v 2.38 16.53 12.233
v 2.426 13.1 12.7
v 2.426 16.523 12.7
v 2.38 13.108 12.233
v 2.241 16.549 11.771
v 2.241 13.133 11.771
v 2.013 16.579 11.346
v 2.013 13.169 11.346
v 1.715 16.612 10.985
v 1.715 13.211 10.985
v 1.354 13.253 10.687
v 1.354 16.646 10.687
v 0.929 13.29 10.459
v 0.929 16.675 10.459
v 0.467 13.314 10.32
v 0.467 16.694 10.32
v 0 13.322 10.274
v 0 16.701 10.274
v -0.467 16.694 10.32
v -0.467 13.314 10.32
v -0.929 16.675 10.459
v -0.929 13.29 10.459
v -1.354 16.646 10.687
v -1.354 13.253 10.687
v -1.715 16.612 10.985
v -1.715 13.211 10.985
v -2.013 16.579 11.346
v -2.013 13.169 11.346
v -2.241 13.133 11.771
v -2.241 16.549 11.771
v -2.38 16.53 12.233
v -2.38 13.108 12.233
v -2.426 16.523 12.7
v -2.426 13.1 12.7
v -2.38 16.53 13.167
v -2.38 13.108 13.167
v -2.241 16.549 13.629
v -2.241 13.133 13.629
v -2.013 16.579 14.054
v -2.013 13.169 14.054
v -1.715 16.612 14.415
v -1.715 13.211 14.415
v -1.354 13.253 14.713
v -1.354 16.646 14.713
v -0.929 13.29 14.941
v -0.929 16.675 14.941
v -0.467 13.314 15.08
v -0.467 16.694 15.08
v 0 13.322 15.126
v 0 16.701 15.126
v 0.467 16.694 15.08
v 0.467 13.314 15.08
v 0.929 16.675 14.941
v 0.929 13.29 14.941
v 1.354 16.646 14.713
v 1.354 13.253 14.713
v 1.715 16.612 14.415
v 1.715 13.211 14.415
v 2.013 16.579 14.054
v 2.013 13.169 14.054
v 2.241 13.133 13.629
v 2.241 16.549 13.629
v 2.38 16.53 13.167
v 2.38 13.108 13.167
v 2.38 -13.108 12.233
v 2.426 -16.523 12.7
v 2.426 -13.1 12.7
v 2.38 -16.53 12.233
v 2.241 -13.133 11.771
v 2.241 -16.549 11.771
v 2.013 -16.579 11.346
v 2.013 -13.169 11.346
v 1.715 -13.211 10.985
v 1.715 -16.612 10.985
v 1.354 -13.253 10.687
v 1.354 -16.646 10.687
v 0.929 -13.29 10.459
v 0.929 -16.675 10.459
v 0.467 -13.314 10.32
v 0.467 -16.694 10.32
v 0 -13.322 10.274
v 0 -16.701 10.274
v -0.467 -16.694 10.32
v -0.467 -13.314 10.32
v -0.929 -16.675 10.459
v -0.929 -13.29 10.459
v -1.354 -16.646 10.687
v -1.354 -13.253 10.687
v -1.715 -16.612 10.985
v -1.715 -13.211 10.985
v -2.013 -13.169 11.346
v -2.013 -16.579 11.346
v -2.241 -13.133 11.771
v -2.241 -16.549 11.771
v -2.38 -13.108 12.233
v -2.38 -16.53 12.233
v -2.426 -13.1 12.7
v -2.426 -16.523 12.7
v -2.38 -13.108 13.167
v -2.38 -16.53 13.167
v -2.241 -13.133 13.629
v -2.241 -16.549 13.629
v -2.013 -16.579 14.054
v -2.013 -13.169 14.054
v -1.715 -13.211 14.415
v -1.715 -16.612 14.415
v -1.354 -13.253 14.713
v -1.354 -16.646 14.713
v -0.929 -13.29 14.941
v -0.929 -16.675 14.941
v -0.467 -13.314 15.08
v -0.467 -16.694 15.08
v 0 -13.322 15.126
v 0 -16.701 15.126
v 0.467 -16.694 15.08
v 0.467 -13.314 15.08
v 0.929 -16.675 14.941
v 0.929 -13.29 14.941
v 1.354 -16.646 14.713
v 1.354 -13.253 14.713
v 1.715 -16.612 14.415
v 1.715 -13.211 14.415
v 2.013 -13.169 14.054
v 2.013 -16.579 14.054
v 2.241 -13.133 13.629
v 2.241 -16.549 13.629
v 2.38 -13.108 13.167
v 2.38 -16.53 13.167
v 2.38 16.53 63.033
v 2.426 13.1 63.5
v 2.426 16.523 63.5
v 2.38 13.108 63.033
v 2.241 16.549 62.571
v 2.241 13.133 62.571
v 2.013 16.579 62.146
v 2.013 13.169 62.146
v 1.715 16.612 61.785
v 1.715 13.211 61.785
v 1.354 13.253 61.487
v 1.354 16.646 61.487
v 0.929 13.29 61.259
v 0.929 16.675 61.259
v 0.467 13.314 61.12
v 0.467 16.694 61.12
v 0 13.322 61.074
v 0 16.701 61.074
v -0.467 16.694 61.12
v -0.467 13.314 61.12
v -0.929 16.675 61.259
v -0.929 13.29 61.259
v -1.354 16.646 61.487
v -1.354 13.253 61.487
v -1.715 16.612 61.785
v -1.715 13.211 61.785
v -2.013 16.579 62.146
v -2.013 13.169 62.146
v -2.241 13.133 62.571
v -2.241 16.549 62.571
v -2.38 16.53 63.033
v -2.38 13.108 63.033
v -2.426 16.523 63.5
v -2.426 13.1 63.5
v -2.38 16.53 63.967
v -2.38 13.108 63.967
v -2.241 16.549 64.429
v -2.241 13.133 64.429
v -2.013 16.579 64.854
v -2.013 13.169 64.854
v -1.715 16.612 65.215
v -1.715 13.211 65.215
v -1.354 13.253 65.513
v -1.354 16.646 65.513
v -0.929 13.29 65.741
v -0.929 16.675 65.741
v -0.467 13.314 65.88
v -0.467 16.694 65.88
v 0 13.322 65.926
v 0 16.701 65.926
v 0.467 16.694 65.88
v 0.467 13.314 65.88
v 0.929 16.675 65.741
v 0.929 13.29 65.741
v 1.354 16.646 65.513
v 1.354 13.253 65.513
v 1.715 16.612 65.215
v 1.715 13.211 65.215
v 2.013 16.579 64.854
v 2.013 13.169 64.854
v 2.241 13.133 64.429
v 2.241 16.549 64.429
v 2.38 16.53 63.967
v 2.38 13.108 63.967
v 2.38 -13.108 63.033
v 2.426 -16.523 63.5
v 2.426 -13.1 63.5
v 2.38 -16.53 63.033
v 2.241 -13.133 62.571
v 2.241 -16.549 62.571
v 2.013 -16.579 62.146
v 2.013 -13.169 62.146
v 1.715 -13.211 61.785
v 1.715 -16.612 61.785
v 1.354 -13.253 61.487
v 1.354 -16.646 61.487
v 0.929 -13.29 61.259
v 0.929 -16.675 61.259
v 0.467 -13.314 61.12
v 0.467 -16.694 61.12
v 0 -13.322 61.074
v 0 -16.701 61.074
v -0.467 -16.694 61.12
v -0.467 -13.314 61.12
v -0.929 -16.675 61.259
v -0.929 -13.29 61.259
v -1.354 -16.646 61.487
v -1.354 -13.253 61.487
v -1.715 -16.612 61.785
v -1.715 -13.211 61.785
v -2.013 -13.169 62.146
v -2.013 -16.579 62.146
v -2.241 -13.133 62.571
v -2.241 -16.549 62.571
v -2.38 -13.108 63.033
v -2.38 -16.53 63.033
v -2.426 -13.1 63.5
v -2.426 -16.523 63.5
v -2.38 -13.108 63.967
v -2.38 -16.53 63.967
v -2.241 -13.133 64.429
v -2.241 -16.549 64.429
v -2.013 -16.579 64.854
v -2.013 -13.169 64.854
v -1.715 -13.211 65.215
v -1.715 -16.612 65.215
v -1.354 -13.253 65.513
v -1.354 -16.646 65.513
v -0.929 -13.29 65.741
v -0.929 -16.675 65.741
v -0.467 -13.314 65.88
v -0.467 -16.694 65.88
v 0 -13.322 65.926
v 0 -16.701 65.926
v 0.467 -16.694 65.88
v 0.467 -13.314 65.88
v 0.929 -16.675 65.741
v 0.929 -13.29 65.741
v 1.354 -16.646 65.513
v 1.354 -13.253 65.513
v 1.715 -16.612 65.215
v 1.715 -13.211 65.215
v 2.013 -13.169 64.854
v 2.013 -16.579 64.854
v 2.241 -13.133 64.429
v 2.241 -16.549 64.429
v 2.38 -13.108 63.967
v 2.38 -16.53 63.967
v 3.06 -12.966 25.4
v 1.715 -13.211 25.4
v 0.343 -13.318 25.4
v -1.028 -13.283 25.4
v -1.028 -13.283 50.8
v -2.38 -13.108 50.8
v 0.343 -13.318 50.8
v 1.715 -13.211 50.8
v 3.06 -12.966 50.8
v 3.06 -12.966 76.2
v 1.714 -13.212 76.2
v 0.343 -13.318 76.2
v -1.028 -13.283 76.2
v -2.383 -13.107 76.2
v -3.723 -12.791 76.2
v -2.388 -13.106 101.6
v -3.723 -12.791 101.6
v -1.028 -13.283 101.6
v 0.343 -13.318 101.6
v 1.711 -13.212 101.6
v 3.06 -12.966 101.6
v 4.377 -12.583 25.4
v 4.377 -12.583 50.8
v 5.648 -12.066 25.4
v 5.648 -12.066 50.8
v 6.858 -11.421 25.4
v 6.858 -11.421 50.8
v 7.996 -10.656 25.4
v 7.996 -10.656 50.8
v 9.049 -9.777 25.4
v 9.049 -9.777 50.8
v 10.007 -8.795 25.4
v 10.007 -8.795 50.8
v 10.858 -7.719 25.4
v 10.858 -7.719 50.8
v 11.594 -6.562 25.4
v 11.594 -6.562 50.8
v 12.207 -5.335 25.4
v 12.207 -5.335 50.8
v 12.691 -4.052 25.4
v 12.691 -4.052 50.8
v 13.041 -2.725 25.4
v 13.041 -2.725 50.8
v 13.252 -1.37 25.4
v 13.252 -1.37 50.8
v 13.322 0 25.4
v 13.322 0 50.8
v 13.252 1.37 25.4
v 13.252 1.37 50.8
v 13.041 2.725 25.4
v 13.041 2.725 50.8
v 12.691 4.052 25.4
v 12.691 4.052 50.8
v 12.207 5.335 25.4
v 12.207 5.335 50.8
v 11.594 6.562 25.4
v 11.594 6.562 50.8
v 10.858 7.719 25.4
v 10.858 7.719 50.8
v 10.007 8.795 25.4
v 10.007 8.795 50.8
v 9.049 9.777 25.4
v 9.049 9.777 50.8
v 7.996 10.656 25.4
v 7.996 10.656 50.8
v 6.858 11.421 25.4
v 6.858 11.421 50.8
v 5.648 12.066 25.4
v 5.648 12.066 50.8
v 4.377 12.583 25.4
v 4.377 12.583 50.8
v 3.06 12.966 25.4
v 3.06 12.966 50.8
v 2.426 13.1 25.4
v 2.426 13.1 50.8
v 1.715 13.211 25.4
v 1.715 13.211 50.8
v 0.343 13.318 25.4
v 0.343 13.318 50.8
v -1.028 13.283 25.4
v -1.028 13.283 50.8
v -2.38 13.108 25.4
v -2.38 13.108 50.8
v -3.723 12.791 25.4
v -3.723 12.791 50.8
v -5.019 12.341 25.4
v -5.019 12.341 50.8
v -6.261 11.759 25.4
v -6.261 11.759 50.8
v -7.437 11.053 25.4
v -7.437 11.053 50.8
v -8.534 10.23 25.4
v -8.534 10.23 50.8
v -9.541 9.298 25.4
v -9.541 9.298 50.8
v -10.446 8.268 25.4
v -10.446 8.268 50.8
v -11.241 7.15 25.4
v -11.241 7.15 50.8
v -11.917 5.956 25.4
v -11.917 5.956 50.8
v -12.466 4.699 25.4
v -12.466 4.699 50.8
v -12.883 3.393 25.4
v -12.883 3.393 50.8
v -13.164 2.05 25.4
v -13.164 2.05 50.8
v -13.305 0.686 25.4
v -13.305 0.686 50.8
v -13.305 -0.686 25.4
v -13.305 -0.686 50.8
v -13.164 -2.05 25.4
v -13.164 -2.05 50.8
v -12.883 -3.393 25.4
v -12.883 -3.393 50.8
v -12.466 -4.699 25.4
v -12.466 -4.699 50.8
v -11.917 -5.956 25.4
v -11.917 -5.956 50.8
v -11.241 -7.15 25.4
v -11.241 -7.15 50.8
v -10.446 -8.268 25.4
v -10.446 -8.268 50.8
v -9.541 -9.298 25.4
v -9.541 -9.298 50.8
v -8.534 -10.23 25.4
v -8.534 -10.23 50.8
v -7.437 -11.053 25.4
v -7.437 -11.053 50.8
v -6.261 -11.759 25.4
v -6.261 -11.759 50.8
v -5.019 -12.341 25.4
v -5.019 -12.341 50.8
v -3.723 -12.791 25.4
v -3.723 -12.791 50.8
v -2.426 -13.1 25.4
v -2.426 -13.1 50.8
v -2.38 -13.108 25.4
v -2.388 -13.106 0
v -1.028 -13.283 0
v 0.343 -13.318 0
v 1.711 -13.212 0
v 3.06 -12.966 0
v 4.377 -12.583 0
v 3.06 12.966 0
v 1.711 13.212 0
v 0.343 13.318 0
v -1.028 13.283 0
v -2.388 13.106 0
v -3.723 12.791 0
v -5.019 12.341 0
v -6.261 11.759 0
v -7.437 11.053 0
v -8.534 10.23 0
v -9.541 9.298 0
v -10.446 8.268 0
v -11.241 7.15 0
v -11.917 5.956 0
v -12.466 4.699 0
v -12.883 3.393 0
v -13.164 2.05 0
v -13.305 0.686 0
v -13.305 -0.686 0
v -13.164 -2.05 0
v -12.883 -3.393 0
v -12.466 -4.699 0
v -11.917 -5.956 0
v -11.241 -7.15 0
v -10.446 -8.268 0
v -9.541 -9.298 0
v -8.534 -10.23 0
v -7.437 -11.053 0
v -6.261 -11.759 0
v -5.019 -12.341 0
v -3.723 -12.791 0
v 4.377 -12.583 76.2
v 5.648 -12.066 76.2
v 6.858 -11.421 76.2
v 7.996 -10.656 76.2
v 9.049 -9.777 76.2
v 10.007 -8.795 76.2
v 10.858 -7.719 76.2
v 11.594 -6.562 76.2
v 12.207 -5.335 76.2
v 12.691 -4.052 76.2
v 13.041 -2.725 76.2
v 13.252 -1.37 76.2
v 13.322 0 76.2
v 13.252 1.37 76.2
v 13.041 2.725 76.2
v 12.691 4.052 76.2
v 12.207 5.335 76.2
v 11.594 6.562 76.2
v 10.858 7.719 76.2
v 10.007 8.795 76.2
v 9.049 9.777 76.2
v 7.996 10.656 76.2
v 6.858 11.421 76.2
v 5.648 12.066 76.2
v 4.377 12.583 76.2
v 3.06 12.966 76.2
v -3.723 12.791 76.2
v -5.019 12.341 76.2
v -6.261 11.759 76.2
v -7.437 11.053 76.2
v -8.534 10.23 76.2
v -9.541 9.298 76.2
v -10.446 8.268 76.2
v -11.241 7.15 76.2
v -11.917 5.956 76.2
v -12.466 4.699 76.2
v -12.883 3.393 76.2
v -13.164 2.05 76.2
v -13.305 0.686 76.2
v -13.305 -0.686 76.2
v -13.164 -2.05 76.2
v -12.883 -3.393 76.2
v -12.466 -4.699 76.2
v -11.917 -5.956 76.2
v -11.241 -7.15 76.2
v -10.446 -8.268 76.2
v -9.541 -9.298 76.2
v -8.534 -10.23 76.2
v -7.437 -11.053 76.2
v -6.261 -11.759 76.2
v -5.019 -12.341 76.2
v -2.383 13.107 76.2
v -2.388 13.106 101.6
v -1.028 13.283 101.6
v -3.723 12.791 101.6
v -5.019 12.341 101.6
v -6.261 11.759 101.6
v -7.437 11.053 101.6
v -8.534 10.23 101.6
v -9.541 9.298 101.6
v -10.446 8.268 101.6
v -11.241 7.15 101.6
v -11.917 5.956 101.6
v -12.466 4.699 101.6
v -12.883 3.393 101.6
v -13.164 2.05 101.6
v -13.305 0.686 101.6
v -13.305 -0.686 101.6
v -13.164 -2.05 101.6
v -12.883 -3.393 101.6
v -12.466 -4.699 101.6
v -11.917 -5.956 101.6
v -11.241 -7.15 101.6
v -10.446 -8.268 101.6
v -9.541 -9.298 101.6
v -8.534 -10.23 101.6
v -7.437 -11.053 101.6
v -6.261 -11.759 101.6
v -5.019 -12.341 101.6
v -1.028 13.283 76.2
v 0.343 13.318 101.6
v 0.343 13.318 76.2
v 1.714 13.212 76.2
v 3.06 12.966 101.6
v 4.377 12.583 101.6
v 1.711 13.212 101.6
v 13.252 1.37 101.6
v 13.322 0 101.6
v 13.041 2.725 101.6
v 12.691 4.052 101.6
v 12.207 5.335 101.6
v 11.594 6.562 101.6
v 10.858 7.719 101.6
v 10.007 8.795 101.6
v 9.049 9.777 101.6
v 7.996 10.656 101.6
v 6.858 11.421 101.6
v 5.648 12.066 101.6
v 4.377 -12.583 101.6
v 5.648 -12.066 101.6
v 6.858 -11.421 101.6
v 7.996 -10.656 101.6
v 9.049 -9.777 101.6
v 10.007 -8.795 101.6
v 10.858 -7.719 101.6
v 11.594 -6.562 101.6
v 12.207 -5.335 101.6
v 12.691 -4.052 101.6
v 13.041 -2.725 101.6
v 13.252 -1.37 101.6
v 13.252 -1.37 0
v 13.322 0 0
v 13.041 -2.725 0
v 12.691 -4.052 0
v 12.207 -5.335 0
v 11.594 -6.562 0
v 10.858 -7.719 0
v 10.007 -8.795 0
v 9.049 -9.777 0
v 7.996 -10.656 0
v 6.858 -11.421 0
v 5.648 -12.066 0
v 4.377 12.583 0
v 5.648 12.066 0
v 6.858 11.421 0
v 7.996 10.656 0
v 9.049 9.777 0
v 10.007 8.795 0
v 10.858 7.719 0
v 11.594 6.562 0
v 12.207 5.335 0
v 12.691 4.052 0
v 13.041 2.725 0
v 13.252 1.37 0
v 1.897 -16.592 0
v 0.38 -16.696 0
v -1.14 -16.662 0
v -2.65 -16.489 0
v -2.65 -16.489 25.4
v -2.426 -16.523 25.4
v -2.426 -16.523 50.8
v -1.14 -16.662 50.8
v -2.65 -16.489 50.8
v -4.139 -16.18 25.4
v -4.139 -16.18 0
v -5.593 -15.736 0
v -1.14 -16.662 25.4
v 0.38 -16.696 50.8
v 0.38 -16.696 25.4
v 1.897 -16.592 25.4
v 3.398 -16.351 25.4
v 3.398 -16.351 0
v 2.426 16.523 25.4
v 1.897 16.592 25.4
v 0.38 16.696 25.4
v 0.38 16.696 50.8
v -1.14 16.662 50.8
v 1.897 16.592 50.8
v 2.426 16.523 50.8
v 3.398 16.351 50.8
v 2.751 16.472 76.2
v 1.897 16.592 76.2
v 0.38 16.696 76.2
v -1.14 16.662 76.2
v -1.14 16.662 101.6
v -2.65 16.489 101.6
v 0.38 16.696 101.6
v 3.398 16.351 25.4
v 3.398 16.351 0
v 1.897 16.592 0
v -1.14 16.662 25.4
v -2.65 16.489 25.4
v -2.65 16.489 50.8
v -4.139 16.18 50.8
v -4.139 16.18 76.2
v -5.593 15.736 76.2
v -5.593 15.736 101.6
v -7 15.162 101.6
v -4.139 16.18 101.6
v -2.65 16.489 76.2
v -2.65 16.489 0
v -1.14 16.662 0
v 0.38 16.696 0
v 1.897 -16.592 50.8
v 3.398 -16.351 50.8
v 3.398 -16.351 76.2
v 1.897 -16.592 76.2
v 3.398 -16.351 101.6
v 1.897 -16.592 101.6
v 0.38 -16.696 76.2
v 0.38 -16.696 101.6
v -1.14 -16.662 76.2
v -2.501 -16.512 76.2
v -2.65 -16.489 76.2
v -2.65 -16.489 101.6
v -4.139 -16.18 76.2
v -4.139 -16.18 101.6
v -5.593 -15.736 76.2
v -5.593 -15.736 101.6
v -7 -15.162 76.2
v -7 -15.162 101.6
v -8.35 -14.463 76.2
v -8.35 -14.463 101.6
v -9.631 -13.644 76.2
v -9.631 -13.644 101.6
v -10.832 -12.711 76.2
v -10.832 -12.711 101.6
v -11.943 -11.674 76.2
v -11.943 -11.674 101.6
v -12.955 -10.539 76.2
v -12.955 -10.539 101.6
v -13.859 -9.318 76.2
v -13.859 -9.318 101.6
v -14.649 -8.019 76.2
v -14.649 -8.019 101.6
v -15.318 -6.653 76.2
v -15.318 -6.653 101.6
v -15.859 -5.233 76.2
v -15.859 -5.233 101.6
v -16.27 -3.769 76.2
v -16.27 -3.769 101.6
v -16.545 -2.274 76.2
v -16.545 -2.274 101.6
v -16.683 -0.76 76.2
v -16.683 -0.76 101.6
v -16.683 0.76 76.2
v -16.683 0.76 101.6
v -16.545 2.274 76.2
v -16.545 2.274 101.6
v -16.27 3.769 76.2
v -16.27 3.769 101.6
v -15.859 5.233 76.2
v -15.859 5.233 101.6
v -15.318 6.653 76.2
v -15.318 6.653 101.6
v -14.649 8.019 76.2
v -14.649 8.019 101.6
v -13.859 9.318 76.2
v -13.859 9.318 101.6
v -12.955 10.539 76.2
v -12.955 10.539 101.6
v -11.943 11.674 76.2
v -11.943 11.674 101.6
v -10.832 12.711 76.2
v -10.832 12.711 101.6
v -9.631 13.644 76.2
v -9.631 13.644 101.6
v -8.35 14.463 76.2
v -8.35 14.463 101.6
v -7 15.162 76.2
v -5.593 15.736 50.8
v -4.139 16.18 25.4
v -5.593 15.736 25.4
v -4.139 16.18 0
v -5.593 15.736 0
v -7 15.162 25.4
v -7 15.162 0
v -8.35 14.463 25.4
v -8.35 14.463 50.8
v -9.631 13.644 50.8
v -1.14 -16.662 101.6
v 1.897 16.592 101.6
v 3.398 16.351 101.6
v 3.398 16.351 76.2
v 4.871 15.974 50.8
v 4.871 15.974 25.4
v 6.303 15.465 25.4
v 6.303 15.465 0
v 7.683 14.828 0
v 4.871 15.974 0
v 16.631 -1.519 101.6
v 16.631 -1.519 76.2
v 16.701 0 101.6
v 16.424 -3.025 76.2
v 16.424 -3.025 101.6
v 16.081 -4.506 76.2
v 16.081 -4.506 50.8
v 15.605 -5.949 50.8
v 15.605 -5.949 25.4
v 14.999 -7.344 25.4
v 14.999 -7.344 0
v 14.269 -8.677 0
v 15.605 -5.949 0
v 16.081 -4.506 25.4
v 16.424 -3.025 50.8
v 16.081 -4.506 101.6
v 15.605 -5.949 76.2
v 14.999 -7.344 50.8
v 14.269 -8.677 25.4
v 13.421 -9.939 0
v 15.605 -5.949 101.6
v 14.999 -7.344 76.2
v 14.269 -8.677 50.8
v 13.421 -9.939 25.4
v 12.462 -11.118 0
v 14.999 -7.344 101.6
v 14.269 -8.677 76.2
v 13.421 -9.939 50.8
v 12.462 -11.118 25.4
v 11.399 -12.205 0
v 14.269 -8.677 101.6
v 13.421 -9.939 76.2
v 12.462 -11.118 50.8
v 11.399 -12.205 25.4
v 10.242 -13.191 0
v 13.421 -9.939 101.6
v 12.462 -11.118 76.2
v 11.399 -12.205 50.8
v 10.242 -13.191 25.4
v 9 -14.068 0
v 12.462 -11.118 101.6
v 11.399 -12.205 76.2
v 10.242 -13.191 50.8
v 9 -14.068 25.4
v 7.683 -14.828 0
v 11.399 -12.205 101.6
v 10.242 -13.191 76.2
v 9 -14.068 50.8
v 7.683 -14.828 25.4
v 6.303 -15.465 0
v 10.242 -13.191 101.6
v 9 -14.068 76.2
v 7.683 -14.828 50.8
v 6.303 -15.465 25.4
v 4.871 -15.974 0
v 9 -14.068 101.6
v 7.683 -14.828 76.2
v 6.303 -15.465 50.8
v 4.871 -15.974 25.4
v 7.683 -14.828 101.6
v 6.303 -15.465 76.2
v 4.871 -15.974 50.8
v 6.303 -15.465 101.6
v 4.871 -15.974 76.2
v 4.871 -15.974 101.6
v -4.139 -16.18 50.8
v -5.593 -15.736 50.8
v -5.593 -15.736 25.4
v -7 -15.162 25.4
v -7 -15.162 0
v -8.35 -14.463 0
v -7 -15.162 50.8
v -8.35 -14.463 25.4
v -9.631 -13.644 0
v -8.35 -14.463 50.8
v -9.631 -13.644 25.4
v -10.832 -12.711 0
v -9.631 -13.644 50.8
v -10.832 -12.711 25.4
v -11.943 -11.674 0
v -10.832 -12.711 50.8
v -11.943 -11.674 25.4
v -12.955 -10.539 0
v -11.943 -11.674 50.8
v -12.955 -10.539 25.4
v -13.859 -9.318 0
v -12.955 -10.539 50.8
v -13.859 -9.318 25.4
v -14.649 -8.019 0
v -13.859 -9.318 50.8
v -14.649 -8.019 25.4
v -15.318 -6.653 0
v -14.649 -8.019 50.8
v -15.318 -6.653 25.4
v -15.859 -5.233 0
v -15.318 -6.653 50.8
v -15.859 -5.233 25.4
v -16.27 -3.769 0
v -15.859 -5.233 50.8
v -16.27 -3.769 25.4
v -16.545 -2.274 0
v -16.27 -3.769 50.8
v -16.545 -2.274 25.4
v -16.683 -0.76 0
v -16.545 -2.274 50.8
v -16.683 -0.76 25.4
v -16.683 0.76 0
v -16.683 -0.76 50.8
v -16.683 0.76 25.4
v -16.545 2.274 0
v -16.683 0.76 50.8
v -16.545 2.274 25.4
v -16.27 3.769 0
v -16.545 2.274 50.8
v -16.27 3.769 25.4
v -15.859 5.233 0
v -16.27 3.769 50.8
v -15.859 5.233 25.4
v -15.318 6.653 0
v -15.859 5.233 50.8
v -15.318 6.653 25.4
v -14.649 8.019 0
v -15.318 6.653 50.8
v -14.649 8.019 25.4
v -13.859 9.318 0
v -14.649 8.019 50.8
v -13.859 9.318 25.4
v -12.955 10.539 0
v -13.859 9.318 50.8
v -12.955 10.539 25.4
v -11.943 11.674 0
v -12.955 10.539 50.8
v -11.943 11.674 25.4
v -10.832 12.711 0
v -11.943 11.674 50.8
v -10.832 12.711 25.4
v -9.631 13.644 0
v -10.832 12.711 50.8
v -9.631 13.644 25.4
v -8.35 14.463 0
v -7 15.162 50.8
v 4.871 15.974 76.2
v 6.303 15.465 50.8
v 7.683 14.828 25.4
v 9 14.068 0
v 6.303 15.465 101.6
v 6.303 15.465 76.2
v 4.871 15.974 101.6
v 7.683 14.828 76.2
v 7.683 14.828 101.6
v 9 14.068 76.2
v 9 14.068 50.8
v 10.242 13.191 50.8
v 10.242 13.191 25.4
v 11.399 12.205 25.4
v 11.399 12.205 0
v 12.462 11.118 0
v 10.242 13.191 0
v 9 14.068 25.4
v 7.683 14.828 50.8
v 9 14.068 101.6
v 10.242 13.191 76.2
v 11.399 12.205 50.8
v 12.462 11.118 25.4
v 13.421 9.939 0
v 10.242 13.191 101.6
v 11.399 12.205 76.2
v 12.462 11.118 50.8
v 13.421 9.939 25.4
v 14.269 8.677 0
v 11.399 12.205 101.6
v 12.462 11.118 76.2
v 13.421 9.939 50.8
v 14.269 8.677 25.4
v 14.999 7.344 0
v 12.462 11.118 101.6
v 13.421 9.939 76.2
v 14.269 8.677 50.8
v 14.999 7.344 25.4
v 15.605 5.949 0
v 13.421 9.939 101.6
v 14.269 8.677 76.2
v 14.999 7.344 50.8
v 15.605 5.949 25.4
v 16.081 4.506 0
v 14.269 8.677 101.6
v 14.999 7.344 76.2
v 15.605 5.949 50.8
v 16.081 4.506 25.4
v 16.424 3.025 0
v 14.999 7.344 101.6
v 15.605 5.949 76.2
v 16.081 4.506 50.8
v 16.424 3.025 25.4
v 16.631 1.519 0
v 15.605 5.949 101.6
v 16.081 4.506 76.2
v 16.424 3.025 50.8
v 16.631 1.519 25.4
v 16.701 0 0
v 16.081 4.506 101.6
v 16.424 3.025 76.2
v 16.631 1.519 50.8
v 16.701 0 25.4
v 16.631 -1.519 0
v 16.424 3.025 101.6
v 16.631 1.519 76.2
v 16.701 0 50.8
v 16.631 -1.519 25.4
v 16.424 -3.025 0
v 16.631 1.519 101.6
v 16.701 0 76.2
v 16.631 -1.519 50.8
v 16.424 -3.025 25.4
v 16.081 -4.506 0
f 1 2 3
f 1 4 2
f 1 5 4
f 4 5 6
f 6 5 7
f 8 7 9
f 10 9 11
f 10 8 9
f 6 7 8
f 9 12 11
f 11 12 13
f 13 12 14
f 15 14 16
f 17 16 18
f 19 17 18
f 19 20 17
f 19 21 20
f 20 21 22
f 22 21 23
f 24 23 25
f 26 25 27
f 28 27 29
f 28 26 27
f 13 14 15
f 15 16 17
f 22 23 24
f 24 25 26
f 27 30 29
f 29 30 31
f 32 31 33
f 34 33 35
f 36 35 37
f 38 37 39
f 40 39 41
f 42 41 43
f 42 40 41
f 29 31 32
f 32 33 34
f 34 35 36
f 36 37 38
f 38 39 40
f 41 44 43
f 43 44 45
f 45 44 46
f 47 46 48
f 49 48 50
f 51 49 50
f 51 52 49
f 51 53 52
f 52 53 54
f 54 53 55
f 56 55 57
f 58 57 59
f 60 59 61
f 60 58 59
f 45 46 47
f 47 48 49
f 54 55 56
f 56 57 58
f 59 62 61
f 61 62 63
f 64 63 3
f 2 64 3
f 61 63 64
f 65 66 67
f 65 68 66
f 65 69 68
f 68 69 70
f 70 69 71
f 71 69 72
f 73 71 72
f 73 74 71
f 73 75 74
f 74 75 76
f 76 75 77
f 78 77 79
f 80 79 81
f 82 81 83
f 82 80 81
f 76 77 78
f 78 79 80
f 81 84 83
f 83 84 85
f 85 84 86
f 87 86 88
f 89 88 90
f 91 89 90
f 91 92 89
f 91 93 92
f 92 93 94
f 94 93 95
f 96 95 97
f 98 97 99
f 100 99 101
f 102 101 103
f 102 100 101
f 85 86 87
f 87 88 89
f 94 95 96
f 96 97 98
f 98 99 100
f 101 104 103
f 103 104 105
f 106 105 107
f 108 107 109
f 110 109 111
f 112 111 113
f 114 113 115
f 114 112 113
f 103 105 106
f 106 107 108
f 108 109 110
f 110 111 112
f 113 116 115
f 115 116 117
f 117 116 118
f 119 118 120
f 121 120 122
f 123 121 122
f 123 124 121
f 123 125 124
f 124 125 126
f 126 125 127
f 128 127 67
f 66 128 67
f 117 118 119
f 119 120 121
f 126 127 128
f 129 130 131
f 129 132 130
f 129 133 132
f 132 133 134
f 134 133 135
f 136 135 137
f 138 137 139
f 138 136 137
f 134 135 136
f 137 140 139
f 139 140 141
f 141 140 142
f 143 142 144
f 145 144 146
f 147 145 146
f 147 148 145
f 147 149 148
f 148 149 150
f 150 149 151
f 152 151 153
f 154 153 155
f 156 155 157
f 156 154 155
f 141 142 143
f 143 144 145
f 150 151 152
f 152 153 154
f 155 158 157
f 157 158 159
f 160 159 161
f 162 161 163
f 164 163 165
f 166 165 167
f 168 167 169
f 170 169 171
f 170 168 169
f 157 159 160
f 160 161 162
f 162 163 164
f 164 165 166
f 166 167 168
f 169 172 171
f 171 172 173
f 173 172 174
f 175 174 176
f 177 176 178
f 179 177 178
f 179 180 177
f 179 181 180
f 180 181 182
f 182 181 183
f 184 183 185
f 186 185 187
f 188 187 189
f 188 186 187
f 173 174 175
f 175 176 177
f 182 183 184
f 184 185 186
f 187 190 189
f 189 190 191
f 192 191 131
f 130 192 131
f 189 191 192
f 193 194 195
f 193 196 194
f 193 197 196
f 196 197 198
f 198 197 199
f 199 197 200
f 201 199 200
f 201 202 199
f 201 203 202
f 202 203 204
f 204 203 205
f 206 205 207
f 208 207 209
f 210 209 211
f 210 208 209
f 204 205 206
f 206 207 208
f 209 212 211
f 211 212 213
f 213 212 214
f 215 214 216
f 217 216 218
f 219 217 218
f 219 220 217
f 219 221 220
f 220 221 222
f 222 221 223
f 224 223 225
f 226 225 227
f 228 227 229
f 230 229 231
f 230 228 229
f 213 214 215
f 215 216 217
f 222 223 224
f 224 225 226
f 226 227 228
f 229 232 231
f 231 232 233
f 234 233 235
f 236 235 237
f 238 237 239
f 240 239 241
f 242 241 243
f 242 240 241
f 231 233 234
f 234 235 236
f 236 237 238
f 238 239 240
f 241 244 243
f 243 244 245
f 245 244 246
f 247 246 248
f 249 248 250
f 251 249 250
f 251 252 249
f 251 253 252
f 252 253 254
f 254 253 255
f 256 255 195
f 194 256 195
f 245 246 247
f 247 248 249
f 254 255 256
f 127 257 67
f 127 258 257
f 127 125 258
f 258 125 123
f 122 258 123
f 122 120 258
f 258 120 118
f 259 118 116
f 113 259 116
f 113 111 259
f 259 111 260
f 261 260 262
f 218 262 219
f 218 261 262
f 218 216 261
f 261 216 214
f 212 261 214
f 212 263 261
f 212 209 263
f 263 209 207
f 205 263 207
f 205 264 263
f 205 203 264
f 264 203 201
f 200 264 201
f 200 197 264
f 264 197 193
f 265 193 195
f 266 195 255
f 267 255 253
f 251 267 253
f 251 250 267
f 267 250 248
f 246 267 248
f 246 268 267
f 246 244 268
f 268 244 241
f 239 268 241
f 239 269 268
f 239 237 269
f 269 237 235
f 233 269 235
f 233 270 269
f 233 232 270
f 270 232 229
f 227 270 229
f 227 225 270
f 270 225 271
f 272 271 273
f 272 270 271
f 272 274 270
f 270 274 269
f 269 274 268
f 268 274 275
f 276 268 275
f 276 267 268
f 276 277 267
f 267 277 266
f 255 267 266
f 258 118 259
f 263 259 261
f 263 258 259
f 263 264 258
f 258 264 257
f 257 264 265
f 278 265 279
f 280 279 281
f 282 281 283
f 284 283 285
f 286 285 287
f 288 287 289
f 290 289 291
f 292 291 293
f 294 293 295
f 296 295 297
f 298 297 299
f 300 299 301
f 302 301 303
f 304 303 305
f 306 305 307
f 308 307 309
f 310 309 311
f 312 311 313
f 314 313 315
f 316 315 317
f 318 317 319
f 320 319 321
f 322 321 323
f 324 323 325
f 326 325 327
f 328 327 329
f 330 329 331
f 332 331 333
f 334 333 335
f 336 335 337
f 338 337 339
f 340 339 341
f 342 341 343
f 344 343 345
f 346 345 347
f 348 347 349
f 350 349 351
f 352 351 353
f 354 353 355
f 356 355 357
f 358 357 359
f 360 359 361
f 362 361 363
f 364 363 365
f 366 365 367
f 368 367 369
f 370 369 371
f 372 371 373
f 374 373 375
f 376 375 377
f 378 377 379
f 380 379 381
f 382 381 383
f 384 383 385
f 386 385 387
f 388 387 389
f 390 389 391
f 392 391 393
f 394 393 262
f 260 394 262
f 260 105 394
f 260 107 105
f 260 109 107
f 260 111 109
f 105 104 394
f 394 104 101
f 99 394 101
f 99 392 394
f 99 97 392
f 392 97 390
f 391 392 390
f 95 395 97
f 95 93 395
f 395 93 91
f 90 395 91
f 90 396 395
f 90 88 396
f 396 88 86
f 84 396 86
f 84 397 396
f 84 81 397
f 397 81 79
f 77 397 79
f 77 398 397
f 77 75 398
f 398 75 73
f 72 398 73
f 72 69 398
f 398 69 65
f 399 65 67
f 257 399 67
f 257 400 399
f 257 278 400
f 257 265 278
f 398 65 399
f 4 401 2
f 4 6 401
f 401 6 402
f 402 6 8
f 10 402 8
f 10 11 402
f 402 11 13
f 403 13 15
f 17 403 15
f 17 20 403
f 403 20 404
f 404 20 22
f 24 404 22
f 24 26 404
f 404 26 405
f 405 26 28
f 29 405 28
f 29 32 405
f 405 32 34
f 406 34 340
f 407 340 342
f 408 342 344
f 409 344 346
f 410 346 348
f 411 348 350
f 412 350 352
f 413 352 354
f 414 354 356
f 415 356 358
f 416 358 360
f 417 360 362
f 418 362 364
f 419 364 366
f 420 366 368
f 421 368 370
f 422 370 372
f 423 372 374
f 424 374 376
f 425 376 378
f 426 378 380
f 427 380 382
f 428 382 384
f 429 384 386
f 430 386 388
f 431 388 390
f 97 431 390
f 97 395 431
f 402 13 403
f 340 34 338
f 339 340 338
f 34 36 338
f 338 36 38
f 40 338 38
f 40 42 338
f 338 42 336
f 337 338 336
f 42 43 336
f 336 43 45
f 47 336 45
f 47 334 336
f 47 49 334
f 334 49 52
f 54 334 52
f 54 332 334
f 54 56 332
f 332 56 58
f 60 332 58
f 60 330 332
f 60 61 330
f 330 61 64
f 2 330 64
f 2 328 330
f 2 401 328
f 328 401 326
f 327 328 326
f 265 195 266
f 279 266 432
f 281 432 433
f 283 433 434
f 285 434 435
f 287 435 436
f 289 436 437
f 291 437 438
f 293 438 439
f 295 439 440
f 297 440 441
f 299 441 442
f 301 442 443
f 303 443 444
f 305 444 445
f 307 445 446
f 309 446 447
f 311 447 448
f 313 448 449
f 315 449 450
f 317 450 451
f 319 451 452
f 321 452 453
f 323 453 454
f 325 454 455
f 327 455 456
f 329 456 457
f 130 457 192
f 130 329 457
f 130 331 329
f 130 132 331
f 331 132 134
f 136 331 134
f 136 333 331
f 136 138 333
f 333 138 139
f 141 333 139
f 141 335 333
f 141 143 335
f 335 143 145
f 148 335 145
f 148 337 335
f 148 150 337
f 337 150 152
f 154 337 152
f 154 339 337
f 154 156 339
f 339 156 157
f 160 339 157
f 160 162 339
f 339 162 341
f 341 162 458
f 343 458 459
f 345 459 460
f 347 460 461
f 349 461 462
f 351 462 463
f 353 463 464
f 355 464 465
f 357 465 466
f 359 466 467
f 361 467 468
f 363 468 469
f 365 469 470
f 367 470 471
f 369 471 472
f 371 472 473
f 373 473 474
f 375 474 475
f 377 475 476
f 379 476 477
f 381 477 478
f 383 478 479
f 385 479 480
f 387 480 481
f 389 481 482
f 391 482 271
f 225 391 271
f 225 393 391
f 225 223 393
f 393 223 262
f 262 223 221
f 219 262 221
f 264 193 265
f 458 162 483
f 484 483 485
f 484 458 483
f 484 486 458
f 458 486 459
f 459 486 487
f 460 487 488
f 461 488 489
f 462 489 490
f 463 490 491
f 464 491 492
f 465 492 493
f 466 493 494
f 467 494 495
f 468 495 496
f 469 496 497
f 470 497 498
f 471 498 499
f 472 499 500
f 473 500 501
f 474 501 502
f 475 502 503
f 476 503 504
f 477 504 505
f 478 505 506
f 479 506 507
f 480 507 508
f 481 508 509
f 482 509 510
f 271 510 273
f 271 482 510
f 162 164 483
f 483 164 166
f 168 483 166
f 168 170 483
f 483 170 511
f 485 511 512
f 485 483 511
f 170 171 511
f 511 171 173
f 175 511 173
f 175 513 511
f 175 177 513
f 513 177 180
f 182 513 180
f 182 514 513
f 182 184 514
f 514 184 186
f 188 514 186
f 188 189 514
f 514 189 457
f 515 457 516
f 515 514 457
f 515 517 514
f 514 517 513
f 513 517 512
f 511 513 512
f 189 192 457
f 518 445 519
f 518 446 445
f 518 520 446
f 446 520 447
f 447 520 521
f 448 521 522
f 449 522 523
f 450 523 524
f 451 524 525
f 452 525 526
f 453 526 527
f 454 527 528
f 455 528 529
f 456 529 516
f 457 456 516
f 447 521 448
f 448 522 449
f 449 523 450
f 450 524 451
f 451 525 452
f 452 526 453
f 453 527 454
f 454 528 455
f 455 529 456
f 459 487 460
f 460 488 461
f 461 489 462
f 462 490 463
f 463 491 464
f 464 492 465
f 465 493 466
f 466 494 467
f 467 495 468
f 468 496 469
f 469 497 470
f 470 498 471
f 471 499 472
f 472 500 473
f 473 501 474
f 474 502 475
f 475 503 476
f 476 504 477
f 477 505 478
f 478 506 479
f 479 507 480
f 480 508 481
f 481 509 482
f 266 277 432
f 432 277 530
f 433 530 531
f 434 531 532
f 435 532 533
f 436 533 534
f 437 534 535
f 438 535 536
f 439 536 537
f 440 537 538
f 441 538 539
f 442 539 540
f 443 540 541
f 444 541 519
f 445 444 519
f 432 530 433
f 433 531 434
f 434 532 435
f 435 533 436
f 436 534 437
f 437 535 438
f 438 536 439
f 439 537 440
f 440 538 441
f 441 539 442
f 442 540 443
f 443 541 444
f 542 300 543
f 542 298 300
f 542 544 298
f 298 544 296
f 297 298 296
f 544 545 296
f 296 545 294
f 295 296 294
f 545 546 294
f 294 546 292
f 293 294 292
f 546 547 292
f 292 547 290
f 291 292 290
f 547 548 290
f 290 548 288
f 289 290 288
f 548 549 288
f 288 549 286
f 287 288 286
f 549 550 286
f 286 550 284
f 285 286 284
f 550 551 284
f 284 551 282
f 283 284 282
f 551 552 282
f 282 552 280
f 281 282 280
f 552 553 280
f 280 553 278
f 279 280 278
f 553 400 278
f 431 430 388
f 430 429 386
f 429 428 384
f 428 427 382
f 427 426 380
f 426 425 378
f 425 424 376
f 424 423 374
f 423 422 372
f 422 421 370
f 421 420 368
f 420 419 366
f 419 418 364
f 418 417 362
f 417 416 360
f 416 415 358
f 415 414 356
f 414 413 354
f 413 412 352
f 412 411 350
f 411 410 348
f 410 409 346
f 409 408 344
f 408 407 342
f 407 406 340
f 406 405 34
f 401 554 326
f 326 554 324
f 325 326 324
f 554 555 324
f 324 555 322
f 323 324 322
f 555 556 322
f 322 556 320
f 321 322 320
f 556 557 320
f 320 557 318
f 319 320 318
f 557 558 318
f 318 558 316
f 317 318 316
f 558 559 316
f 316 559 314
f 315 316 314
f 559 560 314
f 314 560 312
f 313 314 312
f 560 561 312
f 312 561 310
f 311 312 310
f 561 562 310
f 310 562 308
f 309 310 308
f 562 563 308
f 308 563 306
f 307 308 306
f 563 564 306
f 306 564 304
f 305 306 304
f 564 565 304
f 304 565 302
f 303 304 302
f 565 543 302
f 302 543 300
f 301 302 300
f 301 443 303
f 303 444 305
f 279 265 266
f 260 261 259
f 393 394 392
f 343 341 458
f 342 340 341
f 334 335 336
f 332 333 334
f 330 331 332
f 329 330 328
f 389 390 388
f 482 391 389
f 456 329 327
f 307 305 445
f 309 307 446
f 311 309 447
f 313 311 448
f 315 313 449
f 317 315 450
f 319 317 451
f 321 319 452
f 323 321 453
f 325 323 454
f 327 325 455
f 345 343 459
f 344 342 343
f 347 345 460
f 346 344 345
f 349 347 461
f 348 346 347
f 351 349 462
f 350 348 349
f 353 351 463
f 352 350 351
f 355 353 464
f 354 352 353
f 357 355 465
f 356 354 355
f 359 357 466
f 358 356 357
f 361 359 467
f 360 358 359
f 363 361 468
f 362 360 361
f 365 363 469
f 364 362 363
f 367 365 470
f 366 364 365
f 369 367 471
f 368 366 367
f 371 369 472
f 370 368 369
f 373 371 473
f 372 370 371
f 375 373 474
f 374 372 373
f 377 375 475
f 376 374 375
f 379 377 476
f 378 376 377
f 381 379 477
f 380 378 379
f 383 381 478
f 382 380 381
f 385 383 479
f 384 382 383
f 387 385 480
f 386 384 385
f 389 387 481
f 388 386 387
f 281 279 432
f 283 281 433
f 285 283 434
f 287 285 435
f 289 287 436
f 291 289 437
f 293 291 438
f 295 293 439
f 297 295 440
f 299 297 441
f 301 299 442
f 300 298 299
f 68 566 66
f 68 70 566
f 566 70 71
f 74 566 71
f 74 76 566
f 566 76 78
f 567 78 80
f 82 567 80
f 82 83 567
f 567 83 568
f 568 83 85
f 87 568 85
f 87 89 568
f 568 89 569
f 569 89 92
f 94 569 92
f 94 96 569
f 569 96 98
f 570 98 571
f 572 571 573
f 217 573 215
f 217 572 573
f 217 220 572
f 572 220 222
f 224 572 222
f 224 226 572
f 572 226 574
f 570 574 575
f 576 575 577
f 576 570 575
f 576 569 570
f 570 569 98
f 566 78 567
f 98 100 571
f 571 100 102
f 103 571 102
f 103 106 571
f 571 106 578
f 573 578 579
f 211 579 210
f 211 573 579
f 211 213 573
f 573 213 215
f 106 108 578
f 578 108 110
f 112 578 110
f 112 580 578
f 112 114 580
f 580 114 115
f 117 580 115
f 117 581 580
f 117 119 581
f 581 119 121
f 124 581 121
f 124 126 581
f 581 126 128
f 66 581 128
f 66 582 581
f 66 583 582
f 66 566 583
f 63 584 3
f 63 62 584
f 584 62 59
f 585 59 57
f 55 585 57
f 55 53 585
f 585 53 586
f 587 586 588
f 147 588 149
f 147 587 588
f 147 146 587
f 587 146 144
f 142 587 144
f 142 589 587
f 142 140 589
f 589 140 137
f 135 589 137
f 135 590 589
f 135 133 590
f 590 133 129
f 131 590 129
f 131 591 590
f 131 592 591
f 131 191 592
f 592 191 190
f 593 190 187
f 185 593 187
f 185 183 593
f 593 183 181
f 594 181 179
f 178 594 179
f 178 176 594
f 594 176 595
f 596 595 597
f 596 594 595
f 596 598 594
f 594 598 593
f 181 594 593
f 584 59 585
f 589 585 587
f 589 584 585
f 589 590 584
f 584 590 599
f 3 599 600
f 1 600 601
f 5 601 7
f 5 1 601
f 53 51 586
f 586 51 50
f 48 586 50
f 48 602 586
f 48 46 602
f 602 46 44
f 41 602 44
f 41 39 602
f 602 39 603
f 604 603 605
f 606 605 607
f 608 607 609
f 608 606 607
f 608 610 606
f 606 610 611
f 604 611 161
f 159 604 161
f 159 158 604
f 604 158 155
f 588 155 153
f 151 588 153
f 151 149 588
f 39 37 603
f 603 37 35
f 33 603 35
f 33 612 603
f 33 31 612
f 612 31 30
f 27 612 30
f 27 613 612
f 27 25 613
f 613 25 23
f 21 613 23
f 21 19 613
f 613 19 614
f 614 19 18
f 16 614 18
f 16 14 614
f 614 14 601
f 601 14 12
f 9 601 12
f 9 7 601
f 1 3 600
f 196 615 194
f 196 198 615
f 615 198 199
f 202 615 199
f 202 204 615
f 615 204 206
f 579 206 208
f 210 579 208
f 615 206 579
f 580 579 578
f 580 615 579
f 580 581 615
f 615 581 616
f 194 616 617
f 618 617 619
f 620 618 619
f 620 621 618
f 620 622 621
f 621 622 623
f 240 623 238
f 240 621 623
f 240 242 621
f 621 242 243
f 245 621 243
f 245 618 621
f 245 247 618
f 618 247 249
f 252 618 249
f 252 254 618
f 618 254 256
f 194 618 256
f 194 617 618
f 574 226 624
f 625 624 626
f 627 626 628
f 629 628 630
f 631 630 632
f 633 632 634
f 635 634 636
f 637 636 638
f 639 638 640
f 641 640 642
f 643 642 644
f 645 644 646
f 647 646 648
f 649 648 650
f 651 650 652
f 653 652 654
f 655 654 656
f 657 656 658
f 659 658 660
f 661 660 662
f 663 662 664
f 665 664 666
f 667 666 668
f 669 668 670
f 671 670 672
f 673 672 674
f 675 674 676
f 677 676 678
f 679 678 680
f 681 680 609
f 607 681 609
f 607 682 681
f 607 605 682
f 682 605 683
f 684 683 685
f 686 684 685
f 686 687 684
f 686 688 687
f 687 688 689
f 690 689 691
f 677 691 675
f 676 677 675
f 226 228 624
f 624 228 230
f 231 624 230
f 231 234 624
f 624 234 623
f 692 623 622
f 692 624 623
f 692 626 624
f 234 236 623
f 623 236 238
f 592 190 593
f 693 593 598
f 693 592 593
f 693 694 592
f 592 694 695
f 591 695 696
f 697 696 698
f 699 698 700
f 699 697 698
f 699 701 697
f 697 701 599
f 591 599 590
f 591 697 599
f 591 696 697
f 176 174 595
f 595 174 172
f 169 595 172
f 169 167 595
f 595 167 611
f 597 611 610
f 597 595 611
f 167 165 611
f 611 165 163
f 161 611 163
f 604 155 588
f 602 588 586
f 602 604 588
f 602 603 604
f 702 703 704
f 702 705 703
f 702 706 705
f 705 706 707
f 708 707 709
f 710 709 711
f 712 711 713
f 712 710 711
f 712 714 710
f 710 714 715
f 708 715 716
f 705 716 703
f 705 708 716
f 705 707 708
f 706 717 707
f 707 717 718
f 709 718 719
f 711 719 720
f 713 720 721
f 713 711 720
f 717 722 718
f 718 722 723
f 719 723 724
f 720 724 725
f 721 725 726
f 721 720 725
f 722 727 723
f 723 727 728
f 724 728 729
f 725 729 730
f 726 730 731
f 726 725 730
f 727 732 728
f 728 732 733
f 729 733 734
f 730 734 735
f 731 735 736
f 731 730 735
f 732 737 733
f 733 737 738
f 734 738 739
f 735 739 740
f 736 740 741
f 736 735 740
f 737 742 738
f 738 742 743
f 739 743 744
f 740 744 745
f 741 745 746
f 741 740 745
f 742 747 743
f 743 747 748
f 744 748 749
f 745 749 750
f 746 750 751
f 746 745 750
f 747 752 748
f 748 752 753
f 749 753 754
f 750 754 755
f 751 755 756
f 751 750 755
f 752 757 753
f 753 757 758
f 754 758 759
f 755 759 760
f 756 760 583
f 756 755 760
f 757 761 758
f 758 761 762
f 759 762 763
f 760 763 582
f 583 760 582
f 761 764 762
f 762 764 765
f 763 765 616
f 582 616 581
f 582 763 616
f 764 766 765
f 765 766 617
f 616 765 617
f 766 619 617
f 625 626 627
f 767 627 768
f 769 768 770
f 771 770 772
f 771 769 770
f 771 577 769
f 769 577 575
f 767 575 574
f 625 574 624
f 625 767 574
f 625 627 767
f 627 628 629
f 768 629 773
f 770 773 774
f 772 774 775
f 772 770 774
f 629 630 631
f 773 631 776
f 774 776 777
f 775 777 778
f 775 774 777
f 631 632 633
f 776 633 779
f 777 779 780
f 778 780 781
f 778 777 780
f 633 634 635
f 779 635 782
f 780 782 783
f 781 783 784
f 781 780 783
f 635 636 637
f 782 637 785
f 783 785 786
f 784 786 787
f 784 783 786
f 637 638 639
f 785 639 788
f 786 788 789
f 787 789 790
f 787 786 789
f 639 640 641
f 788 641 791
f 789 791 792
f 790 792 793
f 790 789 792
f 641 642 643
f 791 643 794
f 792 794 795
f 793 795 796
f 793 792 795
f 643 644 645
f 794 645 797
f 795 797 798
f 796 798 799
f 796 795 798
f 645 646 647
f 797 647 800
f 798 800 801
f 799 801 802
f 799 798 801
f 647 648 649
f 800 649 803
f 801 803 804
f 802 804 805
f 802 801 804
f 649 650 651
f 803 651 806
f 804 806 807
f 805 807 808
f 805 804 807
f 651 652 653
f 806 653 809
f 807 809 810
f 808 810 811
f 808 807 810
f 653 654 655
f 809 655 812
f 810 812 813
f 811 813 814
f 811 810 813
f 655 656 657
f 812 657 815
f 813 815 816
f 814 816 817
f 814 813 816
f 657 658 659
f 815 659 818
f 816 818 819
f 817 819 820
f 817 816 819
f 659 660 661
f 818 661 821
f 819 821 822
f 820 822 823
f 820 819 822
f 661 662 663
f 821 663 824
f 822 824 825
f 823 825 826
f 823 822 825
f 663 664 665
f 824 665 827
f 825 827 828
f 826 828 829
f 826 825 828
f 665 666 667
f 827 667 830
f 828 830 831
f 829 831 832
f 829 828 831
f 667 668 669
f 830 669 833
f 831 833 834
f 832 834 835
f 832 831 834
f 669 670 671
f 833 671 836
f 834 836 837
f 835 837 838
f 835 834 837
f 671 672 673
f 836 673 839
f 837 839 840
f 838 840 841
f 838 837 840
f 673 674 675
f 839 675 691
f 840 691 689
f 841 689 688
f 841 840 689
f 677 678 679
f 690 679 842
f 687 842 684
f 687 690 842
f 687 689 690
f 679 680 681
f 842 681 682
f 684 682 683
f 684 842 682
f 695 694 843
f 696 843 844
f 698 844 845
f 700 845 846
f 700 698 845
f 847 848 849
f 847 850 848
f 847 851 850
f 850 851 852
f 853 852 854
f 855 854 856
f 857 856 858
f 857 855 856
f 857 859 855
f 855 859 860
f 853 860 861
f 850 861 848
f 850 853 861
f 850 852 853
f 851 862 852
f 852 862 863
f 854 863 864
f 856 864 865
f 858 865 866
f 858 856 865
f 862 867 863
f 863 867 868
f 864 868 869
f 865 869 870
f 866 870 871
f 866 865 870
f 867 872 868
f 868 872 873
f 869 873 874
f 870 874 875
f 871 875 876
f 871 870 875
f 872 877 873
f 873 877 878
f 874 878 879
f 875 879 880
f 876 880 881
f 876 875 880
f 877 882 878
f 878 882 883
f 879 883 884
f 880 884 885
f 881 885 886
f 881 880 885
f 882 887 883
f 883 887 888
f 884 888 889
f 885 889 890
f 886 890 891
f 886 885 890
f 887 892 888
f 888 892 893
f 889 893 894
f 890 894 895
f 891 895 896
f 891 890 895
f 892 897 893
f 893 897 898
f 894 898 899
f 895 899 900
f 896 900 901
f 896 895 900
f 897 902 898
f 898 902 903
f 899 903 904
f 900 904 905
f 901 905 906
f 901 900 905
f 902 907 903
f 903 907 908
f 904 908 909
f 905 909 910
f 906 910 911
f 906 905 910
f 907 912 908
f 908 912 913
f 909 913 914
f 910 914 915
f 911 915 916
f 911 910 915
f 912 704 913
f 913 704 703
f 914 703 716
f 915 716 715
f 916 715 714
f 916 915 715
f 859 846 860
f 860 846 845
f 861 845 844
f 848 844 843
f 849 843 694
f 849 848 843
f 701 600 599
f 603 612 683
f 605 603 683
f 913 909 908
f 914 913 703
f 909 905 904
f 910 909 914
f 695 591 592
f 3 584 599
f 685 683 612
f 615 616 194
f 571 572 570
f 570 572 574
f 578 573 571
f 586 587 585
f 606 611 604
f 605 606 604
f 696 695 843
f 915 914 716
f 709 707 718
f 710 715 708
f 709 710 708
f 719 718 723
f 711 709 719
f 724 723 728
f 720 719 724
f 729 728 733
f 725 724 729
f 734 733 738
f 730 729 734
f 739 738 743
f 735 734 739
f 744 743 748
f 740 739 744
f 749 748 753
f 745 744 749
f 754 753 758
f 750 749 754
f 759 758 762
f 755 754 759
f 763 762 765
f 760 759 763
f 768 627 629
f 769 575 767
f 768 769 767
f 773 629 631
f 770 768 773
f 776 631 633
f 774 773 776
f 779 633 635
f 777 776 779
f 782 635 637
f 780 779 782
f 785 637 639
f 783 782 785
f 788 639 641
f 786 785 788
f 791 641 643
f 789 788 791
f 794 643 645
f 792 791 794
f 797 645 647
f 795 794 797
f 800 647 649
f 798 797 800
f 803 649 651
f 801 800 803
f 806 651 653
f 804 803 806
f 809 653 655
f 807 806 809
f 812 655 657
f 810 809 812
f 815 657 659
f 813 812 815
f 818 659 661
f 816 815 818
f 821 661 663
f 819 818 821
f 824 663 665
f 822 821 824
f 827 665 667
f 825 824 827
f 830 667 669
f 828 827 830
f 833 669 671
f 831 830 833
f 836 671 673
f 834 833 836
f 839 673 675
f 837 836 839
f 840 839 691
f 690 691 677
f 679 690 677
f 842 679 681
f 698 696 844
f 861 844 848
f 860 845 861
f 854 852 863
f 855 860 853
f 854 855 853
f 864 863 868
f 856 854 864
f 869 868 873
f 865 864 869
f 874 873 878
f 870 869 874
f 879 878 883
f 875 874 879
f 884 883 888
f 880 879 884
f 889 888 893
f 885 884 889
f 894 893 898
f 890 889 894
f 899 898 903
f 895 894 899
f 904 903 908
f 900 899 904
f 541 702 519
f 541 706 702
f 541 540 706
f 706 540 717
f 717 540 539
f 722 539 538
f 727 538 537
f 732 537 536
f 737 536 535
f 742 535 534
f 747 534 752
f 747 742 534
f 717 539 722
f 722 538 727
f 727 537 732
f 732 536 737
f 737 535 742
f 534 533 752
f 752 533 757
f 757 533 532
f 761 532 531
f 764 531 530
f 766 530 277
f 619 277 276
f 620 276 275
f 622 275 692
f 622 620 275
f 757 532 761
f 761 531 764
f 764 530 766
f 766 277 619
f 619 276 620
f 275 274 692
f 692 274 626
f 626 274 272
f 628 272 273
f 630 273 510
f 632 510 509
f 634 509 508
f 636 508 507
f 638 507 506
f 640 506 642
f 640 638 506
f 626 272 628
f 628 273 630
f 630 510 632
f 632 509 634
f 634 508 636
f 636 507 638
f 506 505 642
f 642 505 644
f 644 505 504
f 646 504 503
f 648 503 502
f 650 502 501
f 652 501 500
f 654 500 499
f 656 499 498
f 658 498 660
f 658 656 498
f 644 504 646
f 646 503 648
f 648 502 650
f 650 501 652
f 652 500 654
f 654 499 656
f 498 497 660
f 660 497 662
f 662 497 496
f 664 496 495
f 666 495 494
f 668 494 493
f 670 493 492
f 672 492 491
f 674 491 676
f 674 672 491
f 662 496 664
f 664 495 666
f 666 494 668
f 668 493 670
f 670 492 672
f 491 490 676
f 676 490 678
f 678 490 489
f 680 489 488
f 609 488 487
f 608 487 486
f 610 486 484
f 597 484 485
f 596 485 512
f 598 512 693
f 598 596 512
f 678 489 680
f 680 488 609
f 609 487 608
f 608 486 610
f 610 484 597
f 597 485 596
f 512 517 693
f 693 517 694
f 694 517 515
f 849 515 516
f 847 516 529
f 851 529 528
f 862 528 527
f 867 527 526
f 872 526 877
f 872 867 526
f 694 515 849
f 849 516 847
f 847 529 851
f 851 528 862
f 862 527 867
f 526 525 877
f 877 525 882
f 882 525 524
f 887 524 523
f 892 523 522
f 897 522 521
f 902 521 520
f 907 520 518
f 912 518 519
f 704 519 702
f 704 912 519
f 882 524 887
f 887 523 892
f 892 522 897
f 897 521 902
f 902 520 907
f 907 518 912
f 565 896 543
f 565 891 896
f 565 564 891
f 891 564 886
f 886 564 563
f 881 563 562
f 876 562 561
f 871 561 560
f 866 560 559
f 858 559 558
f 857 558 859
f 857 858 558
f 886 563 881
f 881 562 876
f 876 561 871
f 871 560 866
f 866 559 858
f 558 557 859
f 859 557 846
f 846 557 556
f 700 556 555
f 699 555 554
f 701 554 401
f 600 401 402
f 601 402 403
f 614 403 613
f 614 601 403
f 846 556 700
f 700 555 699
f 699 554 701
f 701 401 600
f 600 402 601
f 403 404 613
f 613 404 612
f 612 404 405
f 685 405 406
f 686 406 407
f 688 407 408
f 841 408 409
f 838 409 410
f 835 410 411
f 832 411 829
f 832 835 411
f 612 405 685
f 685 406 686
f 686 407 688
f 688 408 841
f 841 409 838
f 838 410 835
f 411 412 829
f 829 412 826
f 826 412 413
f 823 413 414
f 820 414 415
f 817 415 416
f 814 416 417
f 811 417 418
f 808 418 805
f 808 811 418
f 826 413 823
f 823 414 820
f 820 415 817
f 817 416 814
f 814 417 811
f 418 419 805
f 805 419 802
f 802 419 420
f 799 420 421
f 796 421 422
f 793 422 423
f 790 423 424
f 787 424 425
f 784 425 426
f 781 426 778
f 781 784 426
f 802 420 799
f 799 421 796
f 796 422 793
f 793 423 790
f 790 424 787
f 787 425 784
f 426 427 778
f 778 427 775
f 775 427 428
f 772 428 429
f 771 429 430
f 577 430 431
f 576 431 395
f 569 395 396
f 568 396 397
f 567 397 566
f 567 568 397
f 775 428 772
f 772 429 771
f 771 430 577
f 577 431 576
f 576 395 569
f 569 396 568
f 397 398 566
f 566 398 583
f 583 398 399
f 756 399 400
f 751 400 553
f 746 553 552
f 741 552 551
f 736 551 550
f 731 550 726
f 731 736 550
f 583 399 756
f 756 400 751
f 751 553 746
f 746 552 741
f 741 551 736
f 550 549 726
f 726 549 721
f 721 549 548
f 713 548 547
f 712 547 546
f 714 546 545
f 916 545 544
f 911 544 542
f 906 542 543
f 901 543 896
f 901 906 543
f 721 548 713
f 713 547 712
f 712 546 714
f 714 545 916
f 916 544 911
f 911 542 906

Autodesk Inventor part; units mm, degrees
ref_plane "XZ Plane" through (0, 0, 0) normal (0, 1, 0) x (-1, 0, 0)
ref_plane "XY Plane" through (0, 0, 0) normal (0, 0, 1) x (1, 0, 0)
sketch "Sketch1" plane through (0, 0, 0) normal (0, 0, 1) x (1, 0, 0)
  circle A0 centre (0, 0) radius 16.7005
  circle A1 centre (0, 0) radius 13.3223
  dimension "d0" = 26.6446
  dimension "d1" = 33.401
extrude "Extrusion1" add sketch "Sketch1" along normal blind 101.6
ref_plane "Work Plane1" through (0, 0, 0) normal (0, 1, 0) x (0, 0, 1)
sketch "Sketch2" plane through (0, 0, 0) normal (0, 1, 0) x (0, 0, 1)
  line L0 (0, -16.7005) -> (101.6, -16.7005) projected
  line L1 (101.6, 13.3223) -> (101.6, -13.3223) projected
  line L2 (101.6, 16.7005) -> (101.6, -16.7005) projected
  line L3 (-20.32, 0) -> (121.92, 0) projected
  circle A0 centre (63.5, 0) radius 2.4257
  dimension "d5" = 38.1
  dimension "d6" = 4.8514
extrude "Extrusion2" cut sketch "Sketch2" against normal mid plane 1638.3
pattern_linear "Rectangular Pattern1" count 2 spacing 50.8 along (0, 0, -1) of "Extrusion2"
properties part number "FE-00018-02"
